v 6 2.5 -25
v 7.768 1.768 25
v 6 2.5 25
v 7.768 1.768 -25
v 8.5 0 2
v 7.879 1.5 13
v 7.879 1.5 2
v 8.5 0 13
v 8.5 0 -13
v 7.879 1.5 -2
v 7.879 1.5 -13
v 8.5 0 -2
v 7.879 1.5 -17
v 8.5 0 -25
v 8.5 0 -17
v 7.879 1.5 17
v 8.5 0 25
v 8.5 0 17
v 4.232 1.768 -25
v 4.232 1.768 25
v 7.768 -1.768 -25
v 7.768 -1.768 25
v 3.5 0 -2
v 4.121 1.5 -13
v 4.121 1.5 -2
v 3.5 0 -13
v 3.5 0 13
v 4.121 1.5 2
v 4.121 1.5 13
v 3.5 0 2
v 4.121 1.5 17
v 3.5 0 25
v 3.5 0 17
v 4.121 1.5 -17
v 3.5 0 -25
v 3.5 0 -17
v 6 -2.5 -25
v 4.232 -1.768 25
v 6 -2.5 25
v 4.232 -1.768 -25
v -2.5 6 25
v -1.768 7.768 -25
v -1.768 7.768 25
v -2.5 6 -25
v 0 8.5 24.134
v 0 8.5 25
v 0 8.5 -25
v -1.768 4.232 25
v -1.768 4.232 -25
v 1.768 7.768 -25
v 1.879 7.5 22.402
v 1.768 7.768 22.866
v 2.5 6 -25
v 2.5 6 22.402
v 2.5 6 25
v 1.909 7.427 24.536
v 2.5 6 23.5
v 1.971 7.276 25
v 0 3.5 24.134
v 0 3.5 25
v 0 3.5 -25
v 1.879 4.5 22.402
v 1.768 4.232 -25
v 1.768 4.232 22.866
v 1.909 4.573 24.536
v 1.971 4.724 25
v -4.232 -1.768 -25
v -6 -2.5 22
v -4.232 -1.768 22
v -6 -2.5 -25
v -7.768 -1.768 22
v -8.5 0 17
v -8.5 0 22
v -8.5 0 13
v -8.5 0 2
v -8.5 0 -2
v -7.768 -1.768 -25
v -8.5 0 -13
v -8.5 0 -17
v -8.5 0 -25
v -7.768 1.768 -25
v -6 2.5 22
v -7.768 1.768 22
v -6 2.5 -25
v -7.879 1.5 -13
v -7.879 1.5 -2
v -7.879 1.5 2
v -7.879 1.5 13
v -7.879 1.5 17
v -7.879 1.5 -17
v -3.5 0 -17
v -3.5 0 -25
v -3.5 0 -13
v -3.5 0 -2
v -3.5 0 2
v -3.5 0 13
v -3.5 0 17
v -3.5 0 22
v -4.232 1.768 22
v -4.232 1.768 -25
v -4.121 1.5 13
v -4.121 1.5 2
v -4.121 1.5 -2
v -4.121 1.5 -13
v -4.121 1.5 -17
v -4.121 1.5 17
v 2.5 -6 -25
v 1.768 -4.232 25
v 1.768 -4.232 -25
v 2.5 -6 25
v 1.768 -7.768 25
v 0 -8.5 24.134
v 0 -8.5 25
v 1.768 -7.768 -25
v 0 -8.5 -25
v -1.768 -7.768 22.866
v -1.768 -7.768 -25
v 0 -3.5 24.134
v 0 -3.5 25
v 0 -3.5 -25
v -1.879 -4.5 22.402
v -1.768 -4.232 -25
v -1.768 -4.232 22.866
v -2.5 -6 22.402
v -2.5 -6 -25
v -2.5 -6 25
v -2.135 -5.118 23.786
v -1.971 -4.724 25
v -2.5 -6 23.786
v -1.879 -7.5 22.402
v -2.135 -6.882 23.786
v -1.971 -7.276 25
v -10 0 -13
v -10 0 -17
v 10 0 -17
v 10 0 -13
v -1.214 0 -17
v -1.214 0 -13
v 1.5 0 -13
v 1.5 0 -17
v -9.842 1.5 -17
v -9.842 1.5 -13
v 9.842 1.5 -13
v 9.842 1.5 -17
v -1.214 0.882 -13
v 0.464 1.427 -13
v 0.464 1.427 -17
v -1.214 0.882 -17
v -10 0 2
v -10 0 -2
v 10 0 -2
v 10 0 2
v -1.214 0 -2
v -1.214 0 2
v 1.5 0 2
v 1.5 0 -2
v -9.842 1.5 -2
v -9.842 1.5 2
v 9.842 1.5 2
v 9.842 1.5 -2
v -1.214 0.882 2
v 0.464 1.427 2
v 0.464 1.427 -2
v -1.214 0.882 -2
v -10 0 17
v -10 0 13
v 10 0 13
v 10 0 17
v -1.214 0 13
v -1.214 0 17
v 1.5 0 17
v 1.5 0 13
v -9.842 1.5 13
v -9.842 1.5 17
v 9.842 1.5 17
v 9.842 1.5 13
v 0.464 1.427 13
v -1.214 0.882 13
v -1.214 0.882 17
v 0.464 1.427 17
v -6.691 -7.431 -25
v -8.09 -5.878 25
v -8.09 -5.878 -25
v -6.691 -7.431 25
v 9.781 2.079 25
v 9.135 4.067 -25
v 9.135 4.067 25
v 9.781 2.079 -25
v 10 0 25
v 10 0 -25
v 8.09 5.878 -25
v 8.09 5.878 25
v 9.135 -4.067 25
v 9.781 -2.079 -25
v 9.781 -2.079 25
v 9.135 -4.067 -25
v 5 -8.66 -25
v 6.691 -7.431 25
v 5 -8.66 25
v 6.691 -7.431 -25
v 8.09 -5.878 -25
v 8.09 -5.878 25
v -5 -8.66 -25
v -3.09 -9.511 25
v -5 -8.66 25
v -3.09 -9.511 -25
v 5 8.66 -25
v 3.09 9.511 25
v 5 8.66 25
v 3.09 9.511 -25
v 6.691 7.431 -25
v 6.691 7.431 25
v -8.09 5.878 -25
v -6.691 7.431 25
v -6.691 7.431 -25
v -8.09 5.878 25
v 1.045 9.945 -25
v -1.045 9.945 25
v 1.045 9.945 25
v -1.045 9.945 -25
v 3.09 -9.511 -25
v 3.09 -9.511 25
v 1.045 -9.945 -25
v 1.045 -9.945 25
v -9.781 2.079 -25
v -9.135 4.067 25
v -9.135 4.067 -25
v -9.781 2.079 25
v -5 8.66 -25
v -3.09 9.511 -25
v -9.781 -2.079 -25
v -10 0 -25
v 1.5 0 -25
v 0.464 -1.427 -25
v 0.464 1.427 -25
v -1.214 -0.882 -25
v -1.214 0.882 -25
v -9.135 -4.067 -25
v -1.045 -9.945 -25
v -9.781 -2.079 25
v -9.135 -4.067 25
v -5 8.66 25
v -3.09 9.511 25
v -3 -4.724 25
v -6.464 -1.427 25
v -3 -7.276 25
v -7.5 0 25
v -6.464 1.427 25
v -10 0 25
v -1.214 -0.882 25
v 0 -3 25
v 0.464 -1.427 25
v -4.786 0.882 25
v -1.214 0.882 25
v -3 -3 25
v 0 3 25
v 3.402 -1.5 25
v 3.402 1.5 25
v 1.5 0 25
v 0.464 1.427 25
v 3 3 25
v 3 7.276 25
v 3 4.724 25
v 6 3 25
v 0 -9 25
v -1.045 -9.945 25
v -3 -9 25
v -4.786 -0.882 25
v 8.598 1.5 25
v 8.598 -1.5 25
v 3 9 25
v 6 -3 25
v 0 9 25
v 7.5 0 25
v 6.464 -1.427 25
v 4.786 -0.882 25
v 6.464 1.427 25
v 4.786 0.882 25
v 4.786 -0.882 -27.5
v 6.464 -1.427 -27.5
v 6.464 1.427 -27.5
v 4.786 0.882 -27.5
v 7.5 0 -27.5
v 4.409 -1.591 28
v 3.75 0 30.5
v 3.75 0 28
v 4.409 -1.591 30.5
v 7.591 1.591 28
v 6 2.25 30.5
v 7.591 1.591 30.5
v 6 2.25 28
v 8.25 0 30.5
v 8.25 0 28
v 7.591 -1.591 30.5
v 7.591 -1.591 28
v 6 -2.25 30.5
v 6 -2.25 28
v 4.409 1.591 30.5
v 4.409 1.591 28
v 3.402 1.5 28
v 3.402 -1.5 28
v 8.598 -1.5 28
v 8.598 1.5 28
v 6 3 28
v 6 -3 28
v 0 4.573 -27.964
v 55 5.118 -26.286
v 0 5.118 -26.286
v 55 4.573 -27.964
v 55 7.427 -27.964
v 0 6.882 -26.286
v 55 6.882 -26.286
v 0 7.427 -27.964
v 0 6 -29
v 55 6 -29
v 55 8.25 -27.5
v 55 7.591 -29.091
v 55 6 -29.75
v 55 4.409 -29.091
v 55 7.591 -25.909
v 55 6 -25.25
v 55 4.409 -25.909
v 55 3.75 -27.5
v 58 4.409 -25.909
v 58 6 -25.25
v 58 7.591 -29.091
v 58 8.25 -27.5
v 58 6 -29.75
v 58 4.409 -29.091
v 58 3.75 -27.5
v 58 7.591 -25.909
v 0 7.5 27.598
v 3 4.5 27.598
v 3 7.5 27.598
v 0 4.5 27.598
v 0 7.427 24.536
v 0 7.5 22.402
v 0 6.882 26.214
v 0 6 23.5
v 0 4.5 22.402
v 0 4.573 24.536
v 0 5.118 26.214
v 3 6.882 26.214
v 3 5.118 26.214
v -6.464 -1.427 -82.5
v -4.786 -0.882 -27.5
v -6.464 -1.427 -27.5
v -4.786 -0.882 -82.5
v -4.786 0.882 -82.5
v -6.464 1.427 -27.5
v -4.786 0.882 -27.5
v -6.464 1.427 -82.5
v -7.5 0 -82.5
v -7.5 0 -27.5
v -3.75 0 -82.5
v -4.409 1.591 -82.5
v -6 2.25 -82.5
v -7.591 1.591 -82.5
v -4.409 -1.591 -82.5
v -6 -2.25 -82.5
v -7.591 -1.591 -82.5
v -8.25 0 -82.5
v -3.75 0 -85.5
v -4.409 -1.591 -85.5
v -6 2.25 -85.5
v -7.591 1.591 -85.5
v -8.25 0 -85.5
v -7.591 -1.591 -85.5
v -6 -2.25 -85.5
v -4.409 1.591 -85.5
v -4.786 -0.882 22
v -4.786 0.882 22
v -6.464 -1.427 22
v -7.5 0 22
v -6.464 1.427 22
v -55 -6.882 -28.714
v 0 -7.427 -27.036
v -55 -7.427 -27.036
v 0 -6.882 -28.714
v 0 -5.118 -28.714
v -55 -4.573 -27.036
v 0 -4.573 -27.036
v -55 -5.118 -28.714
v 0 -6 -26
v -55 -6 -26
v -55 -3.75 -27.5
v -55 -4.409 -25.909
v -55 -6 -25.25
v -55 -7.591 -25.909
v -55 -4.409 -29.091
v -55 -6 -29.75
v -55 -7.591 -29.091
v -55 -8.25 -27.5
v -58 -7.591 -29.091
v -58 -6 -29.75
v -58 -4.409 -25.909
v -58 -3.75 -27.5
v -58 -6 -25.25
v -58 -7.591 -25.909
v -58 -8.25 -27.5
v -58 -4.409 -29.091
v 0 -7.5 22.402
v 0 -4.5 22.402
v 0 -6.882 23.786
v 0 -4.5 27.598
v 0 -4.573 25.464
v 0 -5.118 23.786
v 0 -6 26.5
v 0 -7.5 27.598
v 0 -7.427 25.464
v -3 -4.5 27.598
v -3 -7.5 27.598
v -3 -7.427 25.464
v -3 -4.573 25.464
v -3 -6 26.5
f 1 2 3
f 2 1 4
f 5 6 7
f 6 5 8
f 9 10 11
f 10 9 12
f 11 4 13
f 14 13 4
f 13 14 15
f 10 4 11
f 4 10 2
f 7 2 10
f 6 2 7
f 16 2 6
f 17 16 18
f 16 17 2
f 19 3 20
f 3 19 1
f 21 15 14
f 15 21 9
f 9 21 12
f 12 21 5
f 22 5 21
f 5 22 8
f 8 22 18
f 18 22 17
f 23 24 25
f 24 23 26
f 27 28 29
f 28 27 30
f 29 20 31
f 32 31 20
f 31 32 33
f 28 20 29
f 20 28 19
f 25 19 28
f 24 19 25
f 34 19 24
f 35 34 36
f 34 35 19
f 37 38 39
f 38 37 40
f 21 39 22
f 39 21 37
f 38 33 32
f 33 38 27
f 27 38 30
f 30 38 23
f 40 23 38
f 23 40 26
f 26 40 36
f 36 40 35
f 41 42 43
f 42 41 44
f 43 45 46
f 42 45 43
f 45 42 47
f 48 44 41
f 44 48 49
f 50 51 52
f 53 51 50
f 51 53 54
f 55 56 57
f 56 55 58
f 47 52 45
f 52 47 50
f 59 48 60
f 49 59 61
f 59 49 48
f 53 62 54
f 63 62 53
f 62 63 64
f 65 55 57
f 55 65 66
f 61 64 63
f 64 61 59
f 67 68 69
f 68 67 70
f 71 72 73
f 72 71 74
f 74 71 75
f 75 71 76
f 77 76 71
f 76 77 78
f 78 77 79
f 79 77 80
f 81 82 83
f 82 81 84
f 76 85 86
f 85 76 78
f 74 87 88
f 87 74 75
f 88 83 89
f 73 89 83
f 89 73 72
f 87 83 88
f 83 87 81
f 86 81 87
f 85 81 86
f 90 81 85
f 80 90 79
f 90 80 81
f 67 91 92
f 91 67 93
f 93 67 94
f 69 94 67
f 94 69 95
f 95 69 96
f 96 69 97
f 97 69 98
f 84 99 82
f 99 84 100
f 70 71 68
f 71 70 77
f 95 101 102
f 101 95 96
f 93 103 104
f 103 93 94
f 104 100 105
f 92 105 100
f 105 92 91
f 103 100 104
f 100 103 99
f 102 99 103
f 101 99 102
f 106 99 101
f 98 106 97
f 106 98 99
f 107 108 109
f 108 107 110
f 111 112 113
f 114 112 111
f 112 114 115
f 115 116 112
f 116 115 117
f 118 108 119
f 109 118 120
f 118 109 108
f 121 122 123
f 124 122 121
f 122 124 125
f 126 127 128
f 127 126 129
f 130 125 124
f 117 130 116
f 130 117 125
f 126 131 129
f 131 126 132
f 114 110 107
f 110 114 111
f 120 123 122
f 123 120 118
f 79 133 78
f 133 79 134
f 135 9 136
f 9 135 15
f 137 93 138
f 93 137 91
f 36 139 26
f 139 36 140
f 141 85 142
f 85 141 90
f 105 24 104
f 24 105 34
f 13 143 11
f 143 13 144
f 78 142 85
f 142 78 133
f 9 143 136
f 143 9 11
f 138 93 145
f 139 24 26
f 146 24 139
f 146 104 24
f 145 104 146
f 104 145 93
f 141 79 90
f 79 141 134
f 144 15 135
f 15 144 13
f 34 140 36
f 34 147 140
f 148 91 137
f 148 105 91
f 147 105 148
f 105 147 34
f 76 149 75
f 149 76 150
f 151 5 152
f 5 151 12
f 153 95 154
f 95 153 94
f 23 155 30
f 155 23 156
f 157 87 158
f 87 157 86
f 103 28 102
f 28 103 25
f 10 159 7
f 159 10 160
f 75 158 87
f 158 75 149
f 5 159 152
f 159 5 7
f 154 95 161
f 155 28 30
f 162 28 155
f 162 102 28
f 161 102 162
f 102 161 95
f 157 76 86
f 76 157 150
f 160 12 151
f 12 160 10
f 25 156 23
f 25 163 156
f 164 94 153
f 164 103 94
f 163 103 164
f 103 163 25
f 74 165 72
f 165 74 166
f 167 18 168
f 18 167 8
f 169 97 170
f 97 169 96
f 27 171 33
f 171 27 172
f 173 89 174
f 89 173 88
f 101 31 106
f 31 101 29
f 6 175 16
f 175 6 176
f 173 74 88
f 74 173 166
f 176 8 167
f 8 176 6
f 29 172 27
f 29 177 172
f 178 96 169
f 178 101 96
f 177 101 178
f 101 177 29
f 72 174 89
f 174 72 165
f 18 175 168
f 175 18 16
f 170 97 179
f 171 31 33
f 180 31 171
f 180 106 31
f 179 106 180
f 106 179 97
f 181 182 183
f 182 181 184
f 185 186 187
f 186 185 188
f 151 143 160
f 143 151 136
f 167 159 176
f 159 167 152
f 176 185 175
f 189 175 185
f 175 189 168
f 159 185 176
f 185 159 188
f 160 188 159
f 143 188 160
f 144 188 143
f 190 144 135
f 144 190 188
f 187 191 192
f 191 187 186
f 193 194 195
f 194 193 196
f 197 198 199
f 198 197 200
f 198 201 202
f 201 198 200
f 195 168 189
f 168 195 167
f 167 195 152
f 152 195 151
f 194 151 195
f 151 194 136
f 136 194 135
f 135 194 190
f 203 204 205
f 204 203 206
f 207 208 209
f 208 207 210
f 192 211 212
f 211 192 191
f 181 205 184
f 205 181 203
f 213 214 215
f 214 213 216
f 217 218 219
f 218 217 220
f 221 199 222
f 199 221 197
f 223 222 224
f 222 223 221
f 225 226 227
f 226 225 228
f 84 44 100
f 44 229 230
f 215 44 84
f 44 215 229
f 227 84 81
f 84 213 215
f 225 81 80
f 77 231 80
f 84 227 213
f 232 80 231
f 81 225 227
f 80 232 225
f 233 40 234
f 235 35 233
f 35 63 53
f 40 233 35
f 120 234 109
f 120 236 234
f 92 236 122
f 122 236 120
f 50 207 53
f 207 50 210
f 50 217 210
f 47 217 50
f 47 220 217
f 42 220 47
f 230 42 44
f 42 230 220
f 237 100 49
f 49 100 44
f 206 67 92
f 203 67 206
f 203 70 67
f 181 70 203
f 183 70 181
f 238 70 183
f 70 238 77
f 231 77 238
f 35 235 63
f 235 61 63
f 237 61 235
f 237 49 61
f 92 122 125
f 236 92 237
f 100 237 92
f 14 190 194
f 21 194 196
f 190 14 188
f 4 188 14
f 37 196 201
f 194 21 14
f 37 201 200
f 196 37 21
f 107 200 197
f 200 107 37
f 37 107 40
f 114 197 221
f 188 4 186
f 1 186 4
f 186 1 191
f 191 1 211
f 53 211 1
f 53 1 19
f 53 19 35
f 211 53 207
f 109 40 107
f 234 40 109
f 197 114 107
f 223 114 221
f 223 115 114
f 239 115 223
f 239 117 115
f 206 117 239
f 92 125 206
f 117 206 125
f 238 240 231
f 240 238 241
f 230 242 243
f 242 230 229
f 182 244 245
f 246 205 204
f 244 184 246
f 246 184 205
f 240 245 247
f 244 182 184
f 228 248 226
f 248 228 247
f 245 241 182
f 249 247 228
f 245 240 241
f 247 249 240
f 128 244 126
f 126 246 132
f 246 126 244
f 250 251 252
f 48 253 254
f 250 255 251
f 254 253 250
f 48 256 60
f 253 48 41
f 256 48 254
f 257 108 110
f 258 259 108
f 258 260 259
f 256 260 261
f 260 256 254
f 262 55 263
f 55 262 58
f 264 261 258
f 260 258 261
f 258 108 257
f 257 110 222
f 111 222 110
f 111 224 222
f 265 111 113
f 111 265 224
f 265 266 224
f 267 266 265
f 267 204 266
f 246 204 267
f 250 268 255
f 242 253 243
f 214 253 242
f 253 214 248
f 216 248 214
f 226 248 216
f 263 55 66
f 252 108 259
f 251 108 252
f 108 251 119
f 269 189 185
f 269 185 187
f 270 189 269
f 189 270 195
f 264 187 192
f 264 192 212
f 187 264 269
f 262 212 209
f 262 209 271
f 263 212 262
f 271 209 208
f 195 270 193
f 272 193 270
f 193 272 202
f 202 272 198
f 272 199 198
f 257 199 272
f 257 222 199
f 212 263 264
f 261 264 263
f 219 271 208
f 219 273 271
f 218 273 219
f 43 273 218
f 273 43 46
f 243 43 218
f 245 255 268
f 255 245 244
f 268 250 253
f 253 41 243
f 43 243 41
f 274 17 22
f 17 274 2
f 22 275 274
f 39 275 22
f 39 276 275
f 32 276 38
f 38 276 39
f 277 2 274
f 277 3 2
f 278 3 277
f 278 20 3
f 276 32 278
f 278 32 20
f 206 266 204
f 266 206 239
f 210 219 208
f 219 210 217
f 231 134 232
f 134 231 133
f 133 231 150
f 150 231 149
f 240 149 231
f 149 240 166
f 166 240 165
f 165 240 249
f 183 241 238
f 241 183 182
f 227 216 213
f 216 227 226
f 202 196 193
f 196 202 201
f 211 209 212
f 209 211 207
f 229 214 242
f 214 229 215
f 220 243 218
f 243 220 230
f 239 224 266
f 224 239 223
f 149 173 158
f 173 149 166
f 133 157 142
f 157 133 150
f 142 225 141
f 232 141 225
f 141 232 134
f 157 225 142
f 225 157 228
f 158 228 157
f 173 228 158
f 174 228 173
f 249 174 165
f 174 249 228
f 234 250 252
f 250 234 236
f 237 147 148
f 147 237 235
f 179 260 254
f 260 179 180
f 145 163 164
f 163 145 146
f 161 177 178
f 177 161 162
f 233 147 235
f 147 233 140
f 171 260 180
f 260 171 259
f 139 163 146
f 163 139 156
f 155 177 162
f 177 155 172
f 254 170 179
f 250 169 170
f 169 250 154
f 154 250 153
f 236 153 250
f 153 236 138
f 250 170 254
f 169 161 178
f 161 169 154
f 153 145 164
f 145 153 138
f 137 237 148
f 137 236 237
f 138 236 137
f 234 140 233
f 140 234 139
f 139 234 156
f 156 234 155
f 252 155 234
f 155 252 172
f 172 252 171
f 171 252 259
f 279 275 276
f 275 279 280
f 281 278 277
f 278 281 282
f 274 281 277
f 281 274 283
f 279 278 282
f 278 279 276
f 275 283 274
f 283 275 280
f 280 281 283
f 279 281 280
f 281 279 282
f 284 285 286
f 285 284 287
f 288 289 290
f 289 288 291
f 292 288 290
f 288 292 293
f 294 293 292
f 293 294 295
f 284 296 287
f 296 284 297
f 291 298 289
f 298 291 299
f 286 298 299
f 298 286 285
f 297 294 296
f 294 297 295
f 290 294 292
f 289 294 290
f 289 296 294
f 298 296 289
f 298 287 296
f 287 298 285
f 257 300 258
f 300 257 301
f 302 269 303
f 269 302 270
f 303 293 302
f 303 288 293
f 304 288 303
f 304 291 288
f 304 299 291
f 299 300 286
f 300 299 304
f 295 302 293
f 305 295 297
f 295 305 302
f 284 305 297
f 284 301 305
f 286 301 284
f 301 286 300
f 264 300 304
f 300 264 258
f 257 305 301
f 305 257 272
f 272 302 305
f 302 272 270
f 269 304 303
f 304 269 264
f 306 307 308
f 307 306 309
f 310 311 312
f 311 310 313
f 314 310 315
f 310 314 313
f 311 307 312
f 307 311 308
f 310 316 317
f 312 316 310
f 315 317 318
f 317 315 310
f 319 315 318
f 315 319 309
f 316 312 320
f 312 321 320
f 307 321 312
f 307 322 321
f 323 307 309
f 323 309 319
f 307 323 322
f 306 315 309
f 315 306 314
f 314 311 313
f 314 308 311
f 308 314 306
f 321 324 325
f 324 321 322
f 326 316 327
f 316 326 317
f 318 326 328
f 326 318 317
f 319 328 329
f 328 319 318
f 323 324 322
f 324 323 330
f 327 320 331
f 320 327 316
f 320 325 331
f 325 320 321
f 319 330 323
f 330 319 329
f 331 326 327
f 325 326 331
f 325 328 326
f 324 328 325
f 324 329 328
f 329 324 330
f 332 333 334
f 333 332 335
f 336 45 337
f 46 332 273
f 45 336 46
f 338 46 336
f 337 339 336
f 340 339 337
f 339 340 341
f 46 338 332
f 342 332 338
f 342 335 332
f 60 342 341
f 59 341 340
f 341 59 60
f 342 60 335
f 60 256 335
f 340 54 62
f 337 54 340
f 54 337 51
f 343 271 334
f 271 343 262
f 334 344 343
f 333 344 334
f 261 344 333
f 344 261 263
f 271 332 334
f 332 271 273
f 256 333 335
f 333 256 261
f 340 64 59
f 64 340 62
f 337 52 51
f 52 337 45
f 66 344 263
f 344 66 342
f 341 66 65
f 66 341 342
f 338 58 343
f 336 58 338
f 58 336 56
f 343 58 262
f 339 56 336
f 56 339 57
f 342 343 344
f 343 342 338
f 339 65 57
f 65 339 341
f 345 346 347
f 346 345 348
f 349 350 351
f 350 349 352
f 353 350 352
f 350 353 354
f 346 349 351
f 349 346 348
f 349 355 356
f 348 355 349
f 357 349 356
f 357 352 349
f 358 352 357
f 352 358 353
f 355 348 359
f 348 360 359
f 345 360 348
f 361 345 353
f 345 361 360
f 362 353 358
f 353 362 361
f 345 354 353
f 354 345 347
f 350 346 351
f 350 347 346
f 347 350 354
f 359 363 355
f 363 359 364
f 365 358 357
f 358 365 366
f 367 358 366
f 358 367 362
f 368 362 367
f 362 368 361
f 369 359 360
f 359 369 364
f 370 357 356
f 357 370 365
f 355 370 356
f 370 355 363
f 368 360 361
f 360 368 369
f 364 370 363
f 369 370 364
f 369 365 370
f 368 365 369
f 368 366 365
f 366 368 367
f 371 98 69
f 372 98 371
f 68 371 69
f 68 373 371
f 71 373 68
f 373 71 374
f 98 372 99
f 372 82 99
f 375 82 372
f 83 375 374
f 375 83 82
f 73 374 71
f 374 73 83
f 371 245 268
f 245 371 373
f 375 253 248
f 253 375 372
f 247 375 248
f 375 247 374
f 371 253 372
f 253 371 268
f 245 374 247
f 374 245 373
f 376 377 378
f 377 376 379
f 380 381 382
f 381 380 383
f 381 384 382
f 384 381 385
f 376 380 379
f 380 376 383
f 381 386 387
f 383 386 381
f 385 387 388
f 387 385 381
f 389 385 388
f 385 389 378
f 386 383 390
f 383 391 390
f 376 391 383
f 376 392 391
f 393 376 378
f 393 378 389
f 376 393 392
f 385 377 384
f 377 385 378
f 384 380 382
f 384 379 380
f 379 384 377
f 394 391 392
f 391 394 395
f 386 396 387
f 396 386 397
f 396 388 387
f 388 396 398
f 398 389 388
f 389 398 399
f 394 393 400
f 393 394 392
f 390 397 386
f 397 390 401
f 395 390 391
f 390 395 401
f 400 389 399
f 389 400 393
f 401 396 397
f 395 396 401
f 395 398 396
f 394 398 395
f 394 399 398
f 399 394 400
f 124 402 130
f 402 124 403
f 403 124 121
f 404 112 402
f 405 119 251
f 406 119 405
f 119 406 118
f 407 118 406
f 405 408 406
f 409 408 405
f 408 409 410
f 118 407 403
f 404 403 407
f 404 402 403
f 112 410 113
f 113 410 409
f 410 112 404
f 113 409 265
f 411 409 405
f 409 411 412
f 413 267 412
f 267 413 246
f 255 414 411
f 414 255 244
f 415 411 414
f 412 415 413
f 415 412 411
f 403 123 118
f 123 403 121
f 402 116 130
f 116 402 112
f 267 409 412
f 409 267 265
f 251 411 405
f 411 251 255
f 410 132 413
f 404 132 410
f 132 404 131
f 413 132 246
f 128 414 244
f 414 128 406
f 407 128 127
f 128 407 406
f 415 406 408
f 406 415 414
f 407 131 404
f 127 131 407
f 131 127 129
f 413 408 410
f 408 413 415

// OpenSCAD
// Parameters for components
cylinder_diameter = 20;
cylinder_length = 50;
hole_diameter = 3;
threaded_hole_diameter = 5;
groove_depth = 1.5;
groove_width = 2;
bolt_diameter = 3;
bolt_length = 55;
nut_diameter = 6;
nut_height = 3;

// Coupling Cylinder Function
module coupling_cylinder() {
    // Main body
    difference() {
        cylinder(r=cylinder_diameter / 2, h=cylinder_length, center=true);
        
        // Central hollow cavity
        translate([0, 0, -cylinder_length / 2])
            cylinder(r=hole_diameter / 2, h=cylinder_length * 1.5, center=false);

        // Threaded holes near each end
        for (i=[-1, 1]) {
            for (theta = [0, 90, 180, 270]) {
                translate([
                    (cylinder_diameter / 2 - 4) * cos(theta),
                    (cylinder_diameter / 2 - 4) * sin(theta),
                    i * (cylinder_length / 2 - 10)
                ])
                rotate([0, 0, theta])
                    cylinder(r=threaded_hole_diameter / 2, h=cylinder_length, center=true);
            }
        }

        // Functional grooves
        for (offset = [-1, 0, 1]) {
            translate([0, 0, offset * 15])
                rotate([90, 0, 0])
                    translate([-cylinder_diameter / 2, -groove_width, -groove_depth])
                        cube([cylinder_diameter, groove_width * 2, groove_depth], center=false);
        }
    }
}

// Bolt Function
module bolt() {
    union() {
        // Bolt shaft
        cylinder(r=bolt_diameter / 2, h=bolt_length, center=false);
        
        // Bolt head
        translate([0, 0, bolt_length])
            cylinder(r=bolt_diameter * 1.5 / 2, h=bolt_diameter, center=false);
    }
}

// Nut Function
module nut() {
    difference() {
        // Outer hexagonal shape
        rotate([0, 0, 30])
            linear_extrude(height=nut_height)
                polygon(points=[
                    [nut_diameter / 2, 0],
                    [nut_diameter / 4, nut_diameter * sqrt(3) / 4],
                    [-nut_diameter / 4, nut_diameter * sqrt(3) / 4],
                    [-nut_diameter / 2, 0],
                    [-nut_diameter / 4, -nut_diameter * sqrt(3) / 4],
                    [nut_diameter / 4, -nut_diameter * sqrt(3) / 4]
                ]);

        // Inner circular hole
        translate([0, 0, -1])
            cylinder(r=bolt_diameter / 2, h=nut_height + 2, center=false);
    }
}

// Assembly
module assembly() {
    // Layer 1: Coupling cylinder
    coupling_cylinder();

    // Layer 2: Bolts and nuts
    for (theta = [0, 90, 180, 270]) {
        // Bolts
        translate([
            (cylinder_diameter / 2 - 4) * cos(theta),
            (cylinder_diameter / 2 - 4) * sin(theta),
            -bolt_length / 2
        ])
        rotate([0, theta, 0])
            bolt();

        // Nuts
        translate([
            (cylinder_diameter / 2 - 4) * cos(theta),
            (cylinder_diameter / 2 - 4) * sin(theta),
            cylinder_length / 2
        ])
        rotate([0, theta, 0])
            nut();
    }
}

// Render the full assembly
assembly();
